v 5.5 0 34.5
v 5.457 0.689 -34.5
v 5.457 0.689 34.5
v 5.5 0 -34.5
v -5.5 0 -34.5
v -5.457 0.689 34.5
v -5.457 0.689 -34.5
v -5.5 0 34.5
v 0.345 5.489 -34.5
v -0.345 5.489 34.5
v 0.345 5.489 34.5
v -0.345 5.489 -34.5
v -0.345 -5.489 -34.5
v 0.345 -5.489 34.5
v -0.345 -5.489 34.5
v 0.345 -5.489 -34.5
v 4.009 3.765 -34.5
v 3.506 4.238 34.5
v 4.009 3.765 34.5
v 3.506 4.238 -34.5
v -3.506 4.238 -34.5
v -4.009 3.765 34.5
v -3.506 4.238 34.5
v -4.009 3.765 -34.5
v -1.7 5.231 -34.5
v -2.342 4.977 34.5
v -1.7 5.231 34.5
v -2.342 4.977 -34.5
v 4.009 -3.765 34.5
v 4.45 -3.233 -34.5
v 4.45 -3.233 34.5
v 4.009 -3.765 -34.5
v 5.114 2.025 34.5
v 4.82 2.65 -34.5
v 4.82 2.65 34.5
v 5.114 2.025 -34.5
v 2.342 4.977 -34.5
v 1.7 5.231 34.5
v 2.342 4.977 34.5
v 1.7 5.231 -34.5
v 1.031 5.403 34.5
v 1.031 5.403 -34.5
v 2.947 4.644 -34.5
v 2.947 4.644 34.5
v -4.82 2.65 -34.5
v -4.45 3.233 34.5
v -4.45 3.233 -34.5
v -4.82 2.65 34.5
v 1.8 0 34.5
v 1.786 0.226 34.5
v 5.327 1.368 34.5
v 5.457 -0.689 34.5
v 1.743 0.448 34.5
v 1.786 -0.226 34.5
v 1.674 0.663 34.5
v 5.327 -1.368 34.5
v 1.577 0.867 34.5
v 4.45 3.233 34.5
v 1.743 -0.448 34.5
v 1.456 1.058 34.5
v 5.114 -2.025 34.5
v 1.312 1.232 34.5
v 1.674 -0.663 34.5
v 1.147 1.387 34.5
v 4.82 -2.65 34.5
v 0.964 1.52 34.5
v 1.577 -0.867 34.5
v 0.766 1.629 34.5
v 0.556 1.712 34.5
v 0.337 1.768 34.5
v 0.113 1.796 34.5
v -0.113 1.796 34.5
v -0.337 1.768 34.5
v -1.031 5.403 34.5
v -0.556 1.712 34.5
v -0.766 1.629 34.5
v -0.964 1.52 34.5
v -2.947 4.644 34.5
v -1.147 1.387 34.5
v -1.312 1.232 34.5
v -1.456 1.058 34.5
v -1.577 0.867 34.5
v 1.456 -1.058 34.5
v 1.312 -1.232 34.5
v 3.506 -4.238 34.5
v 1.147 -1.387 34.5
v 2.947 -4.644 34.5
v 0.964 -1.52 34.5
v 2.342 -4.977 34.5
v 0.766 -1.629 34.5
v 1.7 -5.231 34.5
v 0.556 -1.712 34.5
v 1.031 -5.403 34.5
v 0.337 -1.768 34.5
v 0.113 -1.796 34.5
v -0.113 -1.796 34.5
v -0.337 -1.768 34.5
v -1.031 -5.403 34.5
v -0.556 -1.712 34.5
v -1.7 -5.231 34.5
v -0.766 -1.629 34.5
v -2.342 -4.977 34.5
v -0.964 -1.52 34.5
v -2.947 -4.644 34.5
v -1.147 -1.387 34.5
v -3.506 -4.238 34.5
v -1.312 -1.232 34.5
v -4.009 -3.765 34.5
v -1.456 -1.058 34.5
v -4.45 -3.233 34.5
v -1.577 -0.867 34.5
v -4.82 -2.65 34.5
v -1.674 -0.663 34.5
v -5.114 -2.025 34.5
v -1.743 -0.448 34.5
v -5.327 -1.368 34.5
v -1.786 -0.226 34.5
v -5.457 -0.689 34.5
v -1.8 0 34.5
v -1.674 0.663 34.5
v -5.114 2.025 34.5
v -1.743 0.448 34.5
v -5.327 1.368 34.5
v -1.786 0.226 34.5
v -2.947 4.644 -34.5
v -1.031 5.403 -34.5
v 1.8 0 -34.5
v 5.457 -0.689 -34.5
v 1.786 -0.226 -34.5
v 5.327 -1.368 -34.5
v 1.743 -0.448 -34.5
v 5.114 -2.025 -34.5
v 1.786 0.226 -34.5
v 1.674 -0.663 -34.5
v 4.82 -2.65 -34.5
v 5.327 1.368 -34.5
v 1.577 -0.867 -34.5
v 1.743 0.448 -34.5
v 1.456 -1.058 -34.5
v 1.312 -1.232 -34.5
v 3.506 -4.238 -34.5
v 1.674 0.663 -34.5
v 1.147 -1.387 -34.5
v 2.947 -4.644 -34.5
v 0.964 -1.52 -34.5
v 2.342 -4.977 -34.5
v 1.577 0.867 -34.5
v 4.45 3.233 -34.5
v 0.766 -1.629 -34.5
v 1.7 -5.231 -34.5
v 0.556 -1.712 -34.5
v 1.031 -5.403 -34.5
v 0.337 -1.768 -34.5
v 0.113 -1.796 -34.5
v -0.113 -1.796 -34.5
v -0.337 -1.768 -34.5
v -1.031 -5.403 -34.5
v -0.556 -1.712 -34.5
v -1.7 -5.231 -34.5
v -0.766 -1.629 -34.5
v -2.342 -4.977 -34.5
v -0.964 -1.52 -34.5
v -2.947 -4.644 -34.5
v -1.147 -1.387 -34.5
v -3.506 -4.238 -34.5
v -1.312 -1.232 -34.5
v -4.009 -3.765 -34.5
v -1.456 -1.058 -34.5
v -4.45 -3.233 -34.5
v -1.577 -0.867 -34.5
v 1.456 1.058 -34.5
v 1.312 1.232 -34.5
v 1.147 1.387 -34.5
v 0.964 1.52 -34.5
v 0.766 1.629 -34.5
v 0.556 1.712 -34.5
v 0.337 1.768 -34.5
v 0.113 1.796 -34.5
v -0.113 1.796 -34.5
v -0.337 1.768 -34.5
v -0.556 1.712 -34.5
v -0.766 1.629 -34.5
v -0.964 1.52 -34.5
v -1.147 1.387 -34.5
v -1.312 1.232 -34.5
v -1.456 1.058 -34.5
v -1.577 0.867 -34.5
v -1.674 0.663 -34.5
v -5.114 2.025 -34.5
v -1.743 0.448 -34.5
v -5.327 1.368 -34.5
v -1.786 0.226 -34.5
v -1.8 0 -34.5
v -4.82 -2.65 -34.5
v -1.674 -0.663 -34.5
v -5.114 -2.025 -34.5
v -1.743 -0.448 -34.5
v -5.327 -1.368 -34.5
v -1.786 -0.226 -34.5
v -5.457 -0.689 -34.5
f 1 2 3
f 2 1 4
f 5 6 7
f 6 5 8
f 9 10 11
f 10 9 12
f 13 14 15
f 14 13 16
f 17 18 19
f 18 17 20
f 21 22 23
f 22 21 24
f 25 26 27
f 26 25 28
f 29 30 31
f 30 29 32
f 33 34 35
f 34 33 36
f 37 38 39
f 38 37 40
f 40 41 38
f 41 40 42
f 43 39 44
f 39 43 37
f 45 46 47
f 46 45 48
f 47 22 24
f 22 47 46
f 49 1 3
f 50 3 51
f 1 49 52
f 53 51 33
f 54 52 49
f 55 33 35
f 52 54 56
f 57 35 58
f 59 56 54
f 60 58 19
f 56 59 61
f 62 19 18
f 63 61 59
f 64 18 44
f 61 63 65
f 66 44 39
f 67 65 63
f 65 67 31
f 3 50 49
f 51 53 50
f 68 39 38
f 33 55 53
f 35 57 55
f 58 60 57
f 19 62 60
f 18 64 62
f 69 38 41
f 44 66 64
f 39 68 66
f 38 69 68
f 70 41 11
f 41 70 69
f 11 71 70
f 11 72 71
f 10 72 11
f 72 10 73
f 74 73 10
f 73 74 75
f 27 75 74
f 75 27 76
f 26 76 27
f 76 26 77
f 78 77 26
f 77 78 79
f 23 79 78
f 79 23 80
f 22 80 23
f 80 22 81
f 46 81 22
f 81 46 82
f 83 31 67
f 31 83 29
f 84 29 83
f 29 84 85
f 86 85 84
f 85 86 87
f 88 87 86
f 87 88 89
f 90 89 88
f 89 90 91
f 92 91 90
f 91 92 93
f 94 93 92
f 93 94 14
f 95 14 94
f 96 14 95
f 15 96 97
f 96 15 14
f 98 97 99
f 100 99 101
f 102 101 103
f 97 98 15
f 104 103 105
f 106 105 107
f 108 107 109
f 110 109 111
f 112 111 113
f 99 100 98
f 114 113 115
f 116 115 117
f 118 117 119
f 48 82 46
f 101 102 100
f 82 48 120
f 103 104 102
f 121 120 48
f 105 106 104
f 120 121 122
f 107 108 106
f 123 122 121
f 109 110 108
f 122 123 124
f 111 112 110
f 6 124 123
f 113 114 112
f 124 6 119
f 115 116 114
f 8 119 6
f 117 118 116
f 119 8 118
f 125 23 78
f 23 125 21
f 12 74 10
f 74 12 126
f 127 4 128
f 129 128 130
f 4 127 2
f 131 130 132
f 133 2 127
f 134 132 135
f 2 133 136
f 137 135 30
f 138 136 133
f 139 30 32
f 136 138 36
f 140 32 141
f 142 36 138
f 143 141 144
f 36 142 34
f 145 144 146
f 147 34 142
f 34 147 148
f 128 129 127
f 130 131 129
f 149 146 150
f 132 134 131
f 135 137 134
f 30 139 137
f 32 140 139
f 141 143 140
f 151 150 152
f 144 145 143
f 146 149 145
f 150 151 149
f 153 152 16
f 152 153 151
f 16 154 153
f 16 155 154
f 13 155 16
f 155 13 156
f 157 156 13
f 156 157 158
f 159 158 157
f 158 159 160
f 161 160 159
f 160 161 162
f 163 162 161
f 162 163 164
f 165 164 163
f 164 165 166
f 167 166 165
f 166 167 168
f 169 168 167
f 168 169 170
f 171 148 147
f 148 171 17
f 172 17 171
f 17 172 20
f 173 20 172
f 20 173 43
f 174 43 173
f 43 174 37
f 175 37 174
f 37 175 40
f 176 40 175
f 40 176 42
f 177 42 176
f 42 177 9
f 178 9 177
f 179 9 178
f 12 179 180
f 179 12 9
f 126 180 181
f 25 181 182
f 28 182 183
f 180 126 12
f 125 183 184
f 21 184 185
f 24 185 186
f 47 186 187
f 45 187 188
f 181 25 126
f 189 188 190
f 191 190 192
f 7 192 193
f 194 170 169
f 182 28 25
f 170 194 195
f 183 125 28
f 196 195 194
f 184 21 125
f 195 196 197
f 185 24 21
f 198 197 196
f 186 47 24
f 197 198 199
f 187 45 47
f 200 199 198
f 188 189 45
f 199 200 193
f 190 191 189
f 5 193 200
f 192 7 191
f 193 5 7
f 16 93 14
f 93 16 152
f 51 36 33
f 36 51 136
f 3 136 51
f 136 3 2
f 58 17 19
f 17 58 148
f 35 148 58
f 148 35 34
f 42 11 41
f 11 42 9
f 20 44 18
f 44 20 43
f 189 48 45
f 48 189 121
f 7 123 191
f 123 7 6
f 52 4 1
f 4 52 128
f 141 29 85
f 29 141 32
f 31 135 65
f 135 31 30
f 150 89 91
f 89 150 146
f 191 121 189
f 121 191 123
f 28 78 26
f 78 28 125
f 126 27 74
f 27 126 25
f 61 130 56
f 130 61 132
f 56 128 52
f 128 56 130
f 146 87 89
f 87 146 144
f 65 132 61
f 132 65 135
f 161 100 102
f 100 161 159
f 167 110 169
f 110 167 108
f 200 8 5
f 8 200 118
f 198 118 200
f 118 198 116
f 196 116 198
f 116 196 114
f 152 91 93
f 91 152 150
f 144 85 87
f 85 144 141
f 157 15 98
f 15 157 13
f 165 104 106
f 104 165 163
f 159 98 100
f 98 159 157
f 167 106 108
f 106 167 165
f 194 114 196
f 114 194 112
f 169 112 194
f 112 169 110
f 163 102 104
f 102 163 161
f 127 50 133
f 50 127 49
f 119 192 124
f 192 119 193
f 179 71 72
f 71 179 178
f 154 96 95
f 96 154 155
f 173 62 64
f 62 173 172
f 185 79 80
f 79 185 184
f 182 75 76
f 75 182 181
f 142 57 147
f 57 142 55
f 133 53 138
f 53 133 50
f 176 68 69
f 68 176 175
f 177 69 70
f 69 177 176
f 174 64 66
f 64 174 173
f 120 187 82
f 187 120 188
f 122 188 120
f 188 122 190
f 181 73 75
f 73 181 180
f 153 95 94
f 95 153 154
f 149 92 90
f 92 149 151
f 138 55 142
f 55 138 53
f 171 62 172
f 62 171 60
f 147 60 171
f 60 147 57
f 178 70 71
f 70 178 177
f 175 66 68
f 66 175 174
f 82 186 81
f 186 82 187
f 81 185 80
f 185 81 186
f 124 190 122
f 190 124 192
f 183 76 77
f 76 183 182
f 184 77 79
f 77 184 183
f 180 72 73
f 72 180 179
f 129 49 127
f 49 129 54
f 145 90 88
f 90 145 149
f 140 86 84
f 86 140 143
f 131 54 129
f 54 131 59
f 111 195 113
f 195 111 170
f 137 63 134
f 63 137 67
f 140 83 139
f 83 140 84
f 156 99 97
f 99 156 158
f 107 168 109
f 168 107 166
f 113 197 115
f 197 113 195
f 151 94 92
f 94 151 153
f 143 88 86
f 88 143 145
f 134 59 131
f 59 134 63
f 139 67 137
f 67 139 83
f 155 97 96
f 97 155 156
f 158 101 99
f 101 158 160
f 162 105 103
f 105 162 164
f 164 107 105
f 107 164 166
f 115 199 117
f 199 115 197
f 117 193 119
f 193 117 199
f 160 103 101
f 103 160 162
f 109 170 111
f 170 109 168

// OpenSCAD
$fn = 50;


difference() {
	union() {
		translate(v = [0, 0, -34.5000000000]) {
			cylinder(h = 69, r = 5.5000000000);
		}
	}
	union() {
		translate(v = [0, 0, -100.0000000000]) {
			cylinder(h = 200, r = 1.8000000000);
		}
	}
}
